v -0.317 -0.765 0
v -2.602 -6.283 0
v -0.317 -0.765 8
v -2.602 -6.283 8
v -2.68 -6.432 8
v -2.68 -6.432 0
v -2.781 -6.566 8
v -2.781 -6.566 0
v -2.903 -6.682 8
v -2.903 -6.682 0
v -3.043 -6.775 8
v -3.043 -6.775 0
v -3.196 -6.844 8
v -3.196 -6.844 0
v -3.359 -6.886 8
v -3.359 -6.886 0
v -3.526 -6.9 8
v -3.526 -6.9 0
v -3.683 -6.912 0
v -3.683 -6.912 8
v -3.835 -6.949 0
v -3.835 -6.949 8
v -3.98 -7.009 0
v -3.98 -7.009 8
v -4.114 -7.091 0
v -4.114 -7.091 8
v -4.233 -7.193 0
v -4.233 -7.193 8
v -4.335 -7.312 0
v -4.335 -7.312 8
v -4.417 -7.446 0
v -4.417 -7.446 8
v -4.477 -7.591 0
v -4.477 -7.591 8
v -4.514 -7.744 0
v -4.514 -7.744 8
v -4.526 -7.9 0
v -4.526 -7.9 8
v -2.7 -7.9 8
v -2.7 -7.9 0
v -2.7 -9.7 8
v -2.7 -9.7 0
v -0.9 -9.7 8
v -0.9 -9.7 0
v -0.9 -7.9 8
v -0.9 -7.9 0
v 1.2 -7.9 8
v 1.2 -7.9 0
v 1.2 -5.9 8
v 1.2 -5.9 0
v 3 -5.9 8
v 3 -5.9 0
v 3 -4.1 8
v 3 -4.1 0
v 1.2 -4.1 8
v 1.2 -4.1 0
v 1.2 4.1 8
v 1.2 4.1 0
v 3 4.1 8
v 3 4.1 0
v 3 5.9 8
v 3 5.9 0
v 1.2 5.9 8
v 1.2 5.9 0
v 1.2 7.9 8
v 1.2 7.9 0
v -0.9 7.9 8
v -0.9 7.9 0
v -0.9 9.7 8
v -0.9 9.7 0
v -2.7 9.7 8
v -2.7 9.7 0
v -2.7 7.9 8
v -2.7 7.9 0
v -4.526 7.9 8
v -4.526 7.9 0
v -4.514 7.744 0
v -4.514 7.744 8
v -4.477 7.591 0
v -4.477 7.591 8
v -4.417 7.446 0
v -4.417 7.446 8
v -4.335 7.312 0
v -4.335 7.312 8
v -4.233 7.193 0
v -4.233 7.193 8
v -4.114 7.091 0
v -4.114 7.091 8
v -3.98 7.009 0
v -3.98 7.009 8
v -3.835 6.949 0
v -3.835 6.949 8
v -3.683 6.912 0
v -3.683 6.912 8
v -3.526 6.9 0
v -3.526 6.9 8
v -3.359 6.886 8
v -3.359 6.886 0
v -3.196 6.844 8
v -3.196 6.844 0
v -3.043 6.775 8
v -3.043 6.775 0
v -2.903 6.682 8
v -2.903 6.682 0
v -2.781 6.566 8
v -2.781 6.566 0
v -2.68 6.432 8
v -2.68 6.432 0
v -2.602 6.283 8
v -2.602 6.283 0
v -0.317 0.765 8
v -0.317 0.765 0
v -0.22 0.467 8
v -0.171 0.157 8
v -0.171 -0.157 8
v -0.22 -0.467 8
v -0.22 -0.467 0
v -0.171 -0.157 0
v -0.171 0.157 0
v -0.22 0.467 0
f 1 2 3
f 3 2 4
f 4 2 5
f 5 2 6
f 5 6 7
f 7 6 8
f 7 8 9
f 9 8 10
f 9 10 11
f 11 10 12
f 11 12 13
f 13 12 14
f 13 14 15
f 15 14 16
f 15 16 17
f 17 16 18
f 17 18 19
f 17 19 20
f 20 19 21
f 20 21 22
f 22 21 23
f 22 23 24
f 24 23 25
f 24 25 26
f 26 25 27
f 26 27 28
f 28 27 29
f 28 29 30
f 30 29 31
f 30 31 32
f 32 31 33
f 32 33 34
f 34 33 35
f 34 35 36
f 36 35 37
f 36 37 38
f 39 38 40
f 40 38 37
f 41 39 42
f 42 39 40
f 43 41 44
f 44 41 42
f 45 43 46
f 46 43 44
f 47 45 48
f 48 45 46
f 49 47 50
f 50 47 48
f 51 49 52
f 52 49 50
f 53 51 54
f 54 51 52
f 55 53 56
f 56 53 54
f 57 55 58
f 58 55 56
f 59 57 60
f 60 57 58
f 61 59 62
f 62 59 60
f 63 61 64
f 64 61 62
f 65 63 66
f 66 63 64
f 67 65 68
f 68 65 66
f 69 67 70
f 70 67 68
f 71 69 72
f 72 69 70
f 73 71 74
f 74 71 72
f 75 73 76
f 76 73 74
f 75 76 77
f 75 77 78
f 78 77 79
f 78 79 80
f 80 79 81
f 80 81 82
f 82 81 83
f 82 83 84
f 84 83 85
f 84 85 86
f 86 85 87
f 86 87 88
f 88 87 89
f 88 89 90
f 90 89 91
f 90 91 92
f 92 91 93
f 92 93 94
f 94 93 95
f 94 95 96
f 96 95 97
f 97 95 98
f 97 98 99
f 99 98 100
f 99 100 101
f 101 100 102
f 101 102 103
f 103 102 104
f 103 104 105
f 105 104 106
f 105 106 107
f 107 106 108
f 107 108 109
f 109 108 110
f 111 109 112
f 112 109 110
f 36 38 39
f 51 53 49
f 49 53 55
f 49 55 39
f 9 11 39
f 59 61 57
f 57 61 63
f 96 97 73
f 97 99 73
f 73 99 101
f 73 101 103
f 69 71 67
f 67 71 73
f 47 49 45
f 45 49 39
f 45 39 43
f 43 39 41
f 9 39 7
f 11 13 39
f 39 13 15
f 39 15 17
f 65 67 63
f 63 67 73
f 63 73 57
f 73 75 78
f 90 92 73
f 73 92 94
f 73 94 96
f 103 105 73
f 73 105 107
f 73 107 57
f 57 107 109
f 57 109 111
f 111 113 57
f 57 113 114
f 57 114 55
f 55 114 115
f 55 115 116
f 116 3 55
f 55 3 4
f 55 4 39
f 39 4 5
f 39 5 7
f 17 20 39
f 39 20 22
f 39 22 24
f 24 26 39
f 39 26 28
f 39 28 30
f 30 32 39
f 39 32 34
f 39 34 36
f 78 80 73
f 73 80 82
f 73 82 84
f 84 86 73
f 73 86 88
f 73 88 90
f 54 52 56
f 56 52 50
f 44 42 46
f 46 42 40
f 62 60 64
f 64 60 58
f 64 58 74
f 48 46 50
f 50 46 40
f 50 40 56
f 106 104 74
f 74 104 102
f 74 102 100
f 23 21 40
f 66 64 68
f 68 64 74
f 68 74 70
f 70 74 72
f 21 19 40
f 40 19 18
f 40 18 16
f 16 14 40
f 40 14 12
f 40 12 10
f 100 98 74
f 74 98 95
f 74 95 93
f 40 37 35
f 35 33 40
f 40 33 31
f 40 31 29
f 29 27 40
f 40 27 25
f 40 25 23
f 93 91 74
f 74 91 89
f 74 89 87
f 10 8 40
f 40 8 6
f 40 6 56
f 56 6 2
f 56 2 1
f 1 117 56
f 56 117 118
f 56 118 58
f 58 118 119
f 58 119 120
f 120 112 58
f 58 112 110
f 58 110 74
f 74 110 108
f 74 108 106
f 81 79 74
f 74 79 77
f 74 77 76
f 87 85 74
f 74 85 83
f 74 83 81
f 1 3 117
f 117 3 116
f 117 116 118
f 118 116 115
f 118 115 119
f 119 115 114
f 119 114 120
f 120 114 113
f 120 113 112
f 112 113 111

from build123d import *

# Parameters (mm, degrees)
P_IDAT_VYSUNUT_M1_DEPTH = 8
ZAOBLIT1_R              = 2


with BuildPart() as part:
    # Skica1 → Přidat vysunutím1 (new body)
    with BuildSketch(Plane.XY):
        with BuildLine():
            Line((1.2, 7.9), (1.2, 5.9))
            Line((1.2, 5.9), (3, 5.9))
            Line((3, 5.9), (3, 4.1))
            Line((3, 4.1), (1.2, 4.1))
            Line((1.2, 4.1), (1.2, -4.1))
            Line((1.2, -4.1), (3, -4.1))
            Line((3, -4.1), (3, -5.9))
            Line((3, -5.9), (1.2, -5.9))
            Line((1.2, -5.9), (1.2, -7.9))
            Line((1.2, -7.9), (-0.9, -7.9))
            Line((-0.9, -7.9), (-0.9, -9.7))
            Line((-0.9, -9.7), (-2.7, -9.7))
            Line((-2.7, -9.7), (-2.7, -7.9))
            Line((-2.7, -7.9), (-4.526252218, -7.9))
            ThreePointArc((-4.526252218, -7.9), (-4.233358999, -7.192893219), (-3.526252218, -6.9))
            ThreePointArc((-3.526252218, -6.9), (-2.970681985, -6.731469612), (-2.602372686, -6.282683432))
            Line((-2.602372686, -6.282683432), (0, 0))
            Line((0, 0), (-2.602372686, 6.282683432))
            ThreePointArc((-2.602372686, 6.282683432), (-2.970681985, 6.731469612), (-3.526252218, 6.9))
            ThreePointArc((-3.526252218, 6.9), (-4.233358999, 7.192893219), (-4.526252218, 7.9))
            Line((-4.526252218, 7.9), (-2.7, 7.9))
            Line((-2.7, 7.9), (-2.7, 9.7))
            Line((-2.7, 9.7), (-0.9, 9.7))
            Line((-0.9, 9.7), (-0.9, 7.9))
            Line((-0.9, 7.9), (1.2, 7.9))
        make_face()
    extrude(amount=P_IDAT_VYSUNUT_M1_DEPTH)

    # Zaoblit1
    zaoblit1_edges = [part.edges().sort_by_distance(p)[0] for p in [
        (0, 0, 4),
    ]]
    fillet(zaoblit1_edges, radius=ZAOBLIT1_R)


solid = part.part
